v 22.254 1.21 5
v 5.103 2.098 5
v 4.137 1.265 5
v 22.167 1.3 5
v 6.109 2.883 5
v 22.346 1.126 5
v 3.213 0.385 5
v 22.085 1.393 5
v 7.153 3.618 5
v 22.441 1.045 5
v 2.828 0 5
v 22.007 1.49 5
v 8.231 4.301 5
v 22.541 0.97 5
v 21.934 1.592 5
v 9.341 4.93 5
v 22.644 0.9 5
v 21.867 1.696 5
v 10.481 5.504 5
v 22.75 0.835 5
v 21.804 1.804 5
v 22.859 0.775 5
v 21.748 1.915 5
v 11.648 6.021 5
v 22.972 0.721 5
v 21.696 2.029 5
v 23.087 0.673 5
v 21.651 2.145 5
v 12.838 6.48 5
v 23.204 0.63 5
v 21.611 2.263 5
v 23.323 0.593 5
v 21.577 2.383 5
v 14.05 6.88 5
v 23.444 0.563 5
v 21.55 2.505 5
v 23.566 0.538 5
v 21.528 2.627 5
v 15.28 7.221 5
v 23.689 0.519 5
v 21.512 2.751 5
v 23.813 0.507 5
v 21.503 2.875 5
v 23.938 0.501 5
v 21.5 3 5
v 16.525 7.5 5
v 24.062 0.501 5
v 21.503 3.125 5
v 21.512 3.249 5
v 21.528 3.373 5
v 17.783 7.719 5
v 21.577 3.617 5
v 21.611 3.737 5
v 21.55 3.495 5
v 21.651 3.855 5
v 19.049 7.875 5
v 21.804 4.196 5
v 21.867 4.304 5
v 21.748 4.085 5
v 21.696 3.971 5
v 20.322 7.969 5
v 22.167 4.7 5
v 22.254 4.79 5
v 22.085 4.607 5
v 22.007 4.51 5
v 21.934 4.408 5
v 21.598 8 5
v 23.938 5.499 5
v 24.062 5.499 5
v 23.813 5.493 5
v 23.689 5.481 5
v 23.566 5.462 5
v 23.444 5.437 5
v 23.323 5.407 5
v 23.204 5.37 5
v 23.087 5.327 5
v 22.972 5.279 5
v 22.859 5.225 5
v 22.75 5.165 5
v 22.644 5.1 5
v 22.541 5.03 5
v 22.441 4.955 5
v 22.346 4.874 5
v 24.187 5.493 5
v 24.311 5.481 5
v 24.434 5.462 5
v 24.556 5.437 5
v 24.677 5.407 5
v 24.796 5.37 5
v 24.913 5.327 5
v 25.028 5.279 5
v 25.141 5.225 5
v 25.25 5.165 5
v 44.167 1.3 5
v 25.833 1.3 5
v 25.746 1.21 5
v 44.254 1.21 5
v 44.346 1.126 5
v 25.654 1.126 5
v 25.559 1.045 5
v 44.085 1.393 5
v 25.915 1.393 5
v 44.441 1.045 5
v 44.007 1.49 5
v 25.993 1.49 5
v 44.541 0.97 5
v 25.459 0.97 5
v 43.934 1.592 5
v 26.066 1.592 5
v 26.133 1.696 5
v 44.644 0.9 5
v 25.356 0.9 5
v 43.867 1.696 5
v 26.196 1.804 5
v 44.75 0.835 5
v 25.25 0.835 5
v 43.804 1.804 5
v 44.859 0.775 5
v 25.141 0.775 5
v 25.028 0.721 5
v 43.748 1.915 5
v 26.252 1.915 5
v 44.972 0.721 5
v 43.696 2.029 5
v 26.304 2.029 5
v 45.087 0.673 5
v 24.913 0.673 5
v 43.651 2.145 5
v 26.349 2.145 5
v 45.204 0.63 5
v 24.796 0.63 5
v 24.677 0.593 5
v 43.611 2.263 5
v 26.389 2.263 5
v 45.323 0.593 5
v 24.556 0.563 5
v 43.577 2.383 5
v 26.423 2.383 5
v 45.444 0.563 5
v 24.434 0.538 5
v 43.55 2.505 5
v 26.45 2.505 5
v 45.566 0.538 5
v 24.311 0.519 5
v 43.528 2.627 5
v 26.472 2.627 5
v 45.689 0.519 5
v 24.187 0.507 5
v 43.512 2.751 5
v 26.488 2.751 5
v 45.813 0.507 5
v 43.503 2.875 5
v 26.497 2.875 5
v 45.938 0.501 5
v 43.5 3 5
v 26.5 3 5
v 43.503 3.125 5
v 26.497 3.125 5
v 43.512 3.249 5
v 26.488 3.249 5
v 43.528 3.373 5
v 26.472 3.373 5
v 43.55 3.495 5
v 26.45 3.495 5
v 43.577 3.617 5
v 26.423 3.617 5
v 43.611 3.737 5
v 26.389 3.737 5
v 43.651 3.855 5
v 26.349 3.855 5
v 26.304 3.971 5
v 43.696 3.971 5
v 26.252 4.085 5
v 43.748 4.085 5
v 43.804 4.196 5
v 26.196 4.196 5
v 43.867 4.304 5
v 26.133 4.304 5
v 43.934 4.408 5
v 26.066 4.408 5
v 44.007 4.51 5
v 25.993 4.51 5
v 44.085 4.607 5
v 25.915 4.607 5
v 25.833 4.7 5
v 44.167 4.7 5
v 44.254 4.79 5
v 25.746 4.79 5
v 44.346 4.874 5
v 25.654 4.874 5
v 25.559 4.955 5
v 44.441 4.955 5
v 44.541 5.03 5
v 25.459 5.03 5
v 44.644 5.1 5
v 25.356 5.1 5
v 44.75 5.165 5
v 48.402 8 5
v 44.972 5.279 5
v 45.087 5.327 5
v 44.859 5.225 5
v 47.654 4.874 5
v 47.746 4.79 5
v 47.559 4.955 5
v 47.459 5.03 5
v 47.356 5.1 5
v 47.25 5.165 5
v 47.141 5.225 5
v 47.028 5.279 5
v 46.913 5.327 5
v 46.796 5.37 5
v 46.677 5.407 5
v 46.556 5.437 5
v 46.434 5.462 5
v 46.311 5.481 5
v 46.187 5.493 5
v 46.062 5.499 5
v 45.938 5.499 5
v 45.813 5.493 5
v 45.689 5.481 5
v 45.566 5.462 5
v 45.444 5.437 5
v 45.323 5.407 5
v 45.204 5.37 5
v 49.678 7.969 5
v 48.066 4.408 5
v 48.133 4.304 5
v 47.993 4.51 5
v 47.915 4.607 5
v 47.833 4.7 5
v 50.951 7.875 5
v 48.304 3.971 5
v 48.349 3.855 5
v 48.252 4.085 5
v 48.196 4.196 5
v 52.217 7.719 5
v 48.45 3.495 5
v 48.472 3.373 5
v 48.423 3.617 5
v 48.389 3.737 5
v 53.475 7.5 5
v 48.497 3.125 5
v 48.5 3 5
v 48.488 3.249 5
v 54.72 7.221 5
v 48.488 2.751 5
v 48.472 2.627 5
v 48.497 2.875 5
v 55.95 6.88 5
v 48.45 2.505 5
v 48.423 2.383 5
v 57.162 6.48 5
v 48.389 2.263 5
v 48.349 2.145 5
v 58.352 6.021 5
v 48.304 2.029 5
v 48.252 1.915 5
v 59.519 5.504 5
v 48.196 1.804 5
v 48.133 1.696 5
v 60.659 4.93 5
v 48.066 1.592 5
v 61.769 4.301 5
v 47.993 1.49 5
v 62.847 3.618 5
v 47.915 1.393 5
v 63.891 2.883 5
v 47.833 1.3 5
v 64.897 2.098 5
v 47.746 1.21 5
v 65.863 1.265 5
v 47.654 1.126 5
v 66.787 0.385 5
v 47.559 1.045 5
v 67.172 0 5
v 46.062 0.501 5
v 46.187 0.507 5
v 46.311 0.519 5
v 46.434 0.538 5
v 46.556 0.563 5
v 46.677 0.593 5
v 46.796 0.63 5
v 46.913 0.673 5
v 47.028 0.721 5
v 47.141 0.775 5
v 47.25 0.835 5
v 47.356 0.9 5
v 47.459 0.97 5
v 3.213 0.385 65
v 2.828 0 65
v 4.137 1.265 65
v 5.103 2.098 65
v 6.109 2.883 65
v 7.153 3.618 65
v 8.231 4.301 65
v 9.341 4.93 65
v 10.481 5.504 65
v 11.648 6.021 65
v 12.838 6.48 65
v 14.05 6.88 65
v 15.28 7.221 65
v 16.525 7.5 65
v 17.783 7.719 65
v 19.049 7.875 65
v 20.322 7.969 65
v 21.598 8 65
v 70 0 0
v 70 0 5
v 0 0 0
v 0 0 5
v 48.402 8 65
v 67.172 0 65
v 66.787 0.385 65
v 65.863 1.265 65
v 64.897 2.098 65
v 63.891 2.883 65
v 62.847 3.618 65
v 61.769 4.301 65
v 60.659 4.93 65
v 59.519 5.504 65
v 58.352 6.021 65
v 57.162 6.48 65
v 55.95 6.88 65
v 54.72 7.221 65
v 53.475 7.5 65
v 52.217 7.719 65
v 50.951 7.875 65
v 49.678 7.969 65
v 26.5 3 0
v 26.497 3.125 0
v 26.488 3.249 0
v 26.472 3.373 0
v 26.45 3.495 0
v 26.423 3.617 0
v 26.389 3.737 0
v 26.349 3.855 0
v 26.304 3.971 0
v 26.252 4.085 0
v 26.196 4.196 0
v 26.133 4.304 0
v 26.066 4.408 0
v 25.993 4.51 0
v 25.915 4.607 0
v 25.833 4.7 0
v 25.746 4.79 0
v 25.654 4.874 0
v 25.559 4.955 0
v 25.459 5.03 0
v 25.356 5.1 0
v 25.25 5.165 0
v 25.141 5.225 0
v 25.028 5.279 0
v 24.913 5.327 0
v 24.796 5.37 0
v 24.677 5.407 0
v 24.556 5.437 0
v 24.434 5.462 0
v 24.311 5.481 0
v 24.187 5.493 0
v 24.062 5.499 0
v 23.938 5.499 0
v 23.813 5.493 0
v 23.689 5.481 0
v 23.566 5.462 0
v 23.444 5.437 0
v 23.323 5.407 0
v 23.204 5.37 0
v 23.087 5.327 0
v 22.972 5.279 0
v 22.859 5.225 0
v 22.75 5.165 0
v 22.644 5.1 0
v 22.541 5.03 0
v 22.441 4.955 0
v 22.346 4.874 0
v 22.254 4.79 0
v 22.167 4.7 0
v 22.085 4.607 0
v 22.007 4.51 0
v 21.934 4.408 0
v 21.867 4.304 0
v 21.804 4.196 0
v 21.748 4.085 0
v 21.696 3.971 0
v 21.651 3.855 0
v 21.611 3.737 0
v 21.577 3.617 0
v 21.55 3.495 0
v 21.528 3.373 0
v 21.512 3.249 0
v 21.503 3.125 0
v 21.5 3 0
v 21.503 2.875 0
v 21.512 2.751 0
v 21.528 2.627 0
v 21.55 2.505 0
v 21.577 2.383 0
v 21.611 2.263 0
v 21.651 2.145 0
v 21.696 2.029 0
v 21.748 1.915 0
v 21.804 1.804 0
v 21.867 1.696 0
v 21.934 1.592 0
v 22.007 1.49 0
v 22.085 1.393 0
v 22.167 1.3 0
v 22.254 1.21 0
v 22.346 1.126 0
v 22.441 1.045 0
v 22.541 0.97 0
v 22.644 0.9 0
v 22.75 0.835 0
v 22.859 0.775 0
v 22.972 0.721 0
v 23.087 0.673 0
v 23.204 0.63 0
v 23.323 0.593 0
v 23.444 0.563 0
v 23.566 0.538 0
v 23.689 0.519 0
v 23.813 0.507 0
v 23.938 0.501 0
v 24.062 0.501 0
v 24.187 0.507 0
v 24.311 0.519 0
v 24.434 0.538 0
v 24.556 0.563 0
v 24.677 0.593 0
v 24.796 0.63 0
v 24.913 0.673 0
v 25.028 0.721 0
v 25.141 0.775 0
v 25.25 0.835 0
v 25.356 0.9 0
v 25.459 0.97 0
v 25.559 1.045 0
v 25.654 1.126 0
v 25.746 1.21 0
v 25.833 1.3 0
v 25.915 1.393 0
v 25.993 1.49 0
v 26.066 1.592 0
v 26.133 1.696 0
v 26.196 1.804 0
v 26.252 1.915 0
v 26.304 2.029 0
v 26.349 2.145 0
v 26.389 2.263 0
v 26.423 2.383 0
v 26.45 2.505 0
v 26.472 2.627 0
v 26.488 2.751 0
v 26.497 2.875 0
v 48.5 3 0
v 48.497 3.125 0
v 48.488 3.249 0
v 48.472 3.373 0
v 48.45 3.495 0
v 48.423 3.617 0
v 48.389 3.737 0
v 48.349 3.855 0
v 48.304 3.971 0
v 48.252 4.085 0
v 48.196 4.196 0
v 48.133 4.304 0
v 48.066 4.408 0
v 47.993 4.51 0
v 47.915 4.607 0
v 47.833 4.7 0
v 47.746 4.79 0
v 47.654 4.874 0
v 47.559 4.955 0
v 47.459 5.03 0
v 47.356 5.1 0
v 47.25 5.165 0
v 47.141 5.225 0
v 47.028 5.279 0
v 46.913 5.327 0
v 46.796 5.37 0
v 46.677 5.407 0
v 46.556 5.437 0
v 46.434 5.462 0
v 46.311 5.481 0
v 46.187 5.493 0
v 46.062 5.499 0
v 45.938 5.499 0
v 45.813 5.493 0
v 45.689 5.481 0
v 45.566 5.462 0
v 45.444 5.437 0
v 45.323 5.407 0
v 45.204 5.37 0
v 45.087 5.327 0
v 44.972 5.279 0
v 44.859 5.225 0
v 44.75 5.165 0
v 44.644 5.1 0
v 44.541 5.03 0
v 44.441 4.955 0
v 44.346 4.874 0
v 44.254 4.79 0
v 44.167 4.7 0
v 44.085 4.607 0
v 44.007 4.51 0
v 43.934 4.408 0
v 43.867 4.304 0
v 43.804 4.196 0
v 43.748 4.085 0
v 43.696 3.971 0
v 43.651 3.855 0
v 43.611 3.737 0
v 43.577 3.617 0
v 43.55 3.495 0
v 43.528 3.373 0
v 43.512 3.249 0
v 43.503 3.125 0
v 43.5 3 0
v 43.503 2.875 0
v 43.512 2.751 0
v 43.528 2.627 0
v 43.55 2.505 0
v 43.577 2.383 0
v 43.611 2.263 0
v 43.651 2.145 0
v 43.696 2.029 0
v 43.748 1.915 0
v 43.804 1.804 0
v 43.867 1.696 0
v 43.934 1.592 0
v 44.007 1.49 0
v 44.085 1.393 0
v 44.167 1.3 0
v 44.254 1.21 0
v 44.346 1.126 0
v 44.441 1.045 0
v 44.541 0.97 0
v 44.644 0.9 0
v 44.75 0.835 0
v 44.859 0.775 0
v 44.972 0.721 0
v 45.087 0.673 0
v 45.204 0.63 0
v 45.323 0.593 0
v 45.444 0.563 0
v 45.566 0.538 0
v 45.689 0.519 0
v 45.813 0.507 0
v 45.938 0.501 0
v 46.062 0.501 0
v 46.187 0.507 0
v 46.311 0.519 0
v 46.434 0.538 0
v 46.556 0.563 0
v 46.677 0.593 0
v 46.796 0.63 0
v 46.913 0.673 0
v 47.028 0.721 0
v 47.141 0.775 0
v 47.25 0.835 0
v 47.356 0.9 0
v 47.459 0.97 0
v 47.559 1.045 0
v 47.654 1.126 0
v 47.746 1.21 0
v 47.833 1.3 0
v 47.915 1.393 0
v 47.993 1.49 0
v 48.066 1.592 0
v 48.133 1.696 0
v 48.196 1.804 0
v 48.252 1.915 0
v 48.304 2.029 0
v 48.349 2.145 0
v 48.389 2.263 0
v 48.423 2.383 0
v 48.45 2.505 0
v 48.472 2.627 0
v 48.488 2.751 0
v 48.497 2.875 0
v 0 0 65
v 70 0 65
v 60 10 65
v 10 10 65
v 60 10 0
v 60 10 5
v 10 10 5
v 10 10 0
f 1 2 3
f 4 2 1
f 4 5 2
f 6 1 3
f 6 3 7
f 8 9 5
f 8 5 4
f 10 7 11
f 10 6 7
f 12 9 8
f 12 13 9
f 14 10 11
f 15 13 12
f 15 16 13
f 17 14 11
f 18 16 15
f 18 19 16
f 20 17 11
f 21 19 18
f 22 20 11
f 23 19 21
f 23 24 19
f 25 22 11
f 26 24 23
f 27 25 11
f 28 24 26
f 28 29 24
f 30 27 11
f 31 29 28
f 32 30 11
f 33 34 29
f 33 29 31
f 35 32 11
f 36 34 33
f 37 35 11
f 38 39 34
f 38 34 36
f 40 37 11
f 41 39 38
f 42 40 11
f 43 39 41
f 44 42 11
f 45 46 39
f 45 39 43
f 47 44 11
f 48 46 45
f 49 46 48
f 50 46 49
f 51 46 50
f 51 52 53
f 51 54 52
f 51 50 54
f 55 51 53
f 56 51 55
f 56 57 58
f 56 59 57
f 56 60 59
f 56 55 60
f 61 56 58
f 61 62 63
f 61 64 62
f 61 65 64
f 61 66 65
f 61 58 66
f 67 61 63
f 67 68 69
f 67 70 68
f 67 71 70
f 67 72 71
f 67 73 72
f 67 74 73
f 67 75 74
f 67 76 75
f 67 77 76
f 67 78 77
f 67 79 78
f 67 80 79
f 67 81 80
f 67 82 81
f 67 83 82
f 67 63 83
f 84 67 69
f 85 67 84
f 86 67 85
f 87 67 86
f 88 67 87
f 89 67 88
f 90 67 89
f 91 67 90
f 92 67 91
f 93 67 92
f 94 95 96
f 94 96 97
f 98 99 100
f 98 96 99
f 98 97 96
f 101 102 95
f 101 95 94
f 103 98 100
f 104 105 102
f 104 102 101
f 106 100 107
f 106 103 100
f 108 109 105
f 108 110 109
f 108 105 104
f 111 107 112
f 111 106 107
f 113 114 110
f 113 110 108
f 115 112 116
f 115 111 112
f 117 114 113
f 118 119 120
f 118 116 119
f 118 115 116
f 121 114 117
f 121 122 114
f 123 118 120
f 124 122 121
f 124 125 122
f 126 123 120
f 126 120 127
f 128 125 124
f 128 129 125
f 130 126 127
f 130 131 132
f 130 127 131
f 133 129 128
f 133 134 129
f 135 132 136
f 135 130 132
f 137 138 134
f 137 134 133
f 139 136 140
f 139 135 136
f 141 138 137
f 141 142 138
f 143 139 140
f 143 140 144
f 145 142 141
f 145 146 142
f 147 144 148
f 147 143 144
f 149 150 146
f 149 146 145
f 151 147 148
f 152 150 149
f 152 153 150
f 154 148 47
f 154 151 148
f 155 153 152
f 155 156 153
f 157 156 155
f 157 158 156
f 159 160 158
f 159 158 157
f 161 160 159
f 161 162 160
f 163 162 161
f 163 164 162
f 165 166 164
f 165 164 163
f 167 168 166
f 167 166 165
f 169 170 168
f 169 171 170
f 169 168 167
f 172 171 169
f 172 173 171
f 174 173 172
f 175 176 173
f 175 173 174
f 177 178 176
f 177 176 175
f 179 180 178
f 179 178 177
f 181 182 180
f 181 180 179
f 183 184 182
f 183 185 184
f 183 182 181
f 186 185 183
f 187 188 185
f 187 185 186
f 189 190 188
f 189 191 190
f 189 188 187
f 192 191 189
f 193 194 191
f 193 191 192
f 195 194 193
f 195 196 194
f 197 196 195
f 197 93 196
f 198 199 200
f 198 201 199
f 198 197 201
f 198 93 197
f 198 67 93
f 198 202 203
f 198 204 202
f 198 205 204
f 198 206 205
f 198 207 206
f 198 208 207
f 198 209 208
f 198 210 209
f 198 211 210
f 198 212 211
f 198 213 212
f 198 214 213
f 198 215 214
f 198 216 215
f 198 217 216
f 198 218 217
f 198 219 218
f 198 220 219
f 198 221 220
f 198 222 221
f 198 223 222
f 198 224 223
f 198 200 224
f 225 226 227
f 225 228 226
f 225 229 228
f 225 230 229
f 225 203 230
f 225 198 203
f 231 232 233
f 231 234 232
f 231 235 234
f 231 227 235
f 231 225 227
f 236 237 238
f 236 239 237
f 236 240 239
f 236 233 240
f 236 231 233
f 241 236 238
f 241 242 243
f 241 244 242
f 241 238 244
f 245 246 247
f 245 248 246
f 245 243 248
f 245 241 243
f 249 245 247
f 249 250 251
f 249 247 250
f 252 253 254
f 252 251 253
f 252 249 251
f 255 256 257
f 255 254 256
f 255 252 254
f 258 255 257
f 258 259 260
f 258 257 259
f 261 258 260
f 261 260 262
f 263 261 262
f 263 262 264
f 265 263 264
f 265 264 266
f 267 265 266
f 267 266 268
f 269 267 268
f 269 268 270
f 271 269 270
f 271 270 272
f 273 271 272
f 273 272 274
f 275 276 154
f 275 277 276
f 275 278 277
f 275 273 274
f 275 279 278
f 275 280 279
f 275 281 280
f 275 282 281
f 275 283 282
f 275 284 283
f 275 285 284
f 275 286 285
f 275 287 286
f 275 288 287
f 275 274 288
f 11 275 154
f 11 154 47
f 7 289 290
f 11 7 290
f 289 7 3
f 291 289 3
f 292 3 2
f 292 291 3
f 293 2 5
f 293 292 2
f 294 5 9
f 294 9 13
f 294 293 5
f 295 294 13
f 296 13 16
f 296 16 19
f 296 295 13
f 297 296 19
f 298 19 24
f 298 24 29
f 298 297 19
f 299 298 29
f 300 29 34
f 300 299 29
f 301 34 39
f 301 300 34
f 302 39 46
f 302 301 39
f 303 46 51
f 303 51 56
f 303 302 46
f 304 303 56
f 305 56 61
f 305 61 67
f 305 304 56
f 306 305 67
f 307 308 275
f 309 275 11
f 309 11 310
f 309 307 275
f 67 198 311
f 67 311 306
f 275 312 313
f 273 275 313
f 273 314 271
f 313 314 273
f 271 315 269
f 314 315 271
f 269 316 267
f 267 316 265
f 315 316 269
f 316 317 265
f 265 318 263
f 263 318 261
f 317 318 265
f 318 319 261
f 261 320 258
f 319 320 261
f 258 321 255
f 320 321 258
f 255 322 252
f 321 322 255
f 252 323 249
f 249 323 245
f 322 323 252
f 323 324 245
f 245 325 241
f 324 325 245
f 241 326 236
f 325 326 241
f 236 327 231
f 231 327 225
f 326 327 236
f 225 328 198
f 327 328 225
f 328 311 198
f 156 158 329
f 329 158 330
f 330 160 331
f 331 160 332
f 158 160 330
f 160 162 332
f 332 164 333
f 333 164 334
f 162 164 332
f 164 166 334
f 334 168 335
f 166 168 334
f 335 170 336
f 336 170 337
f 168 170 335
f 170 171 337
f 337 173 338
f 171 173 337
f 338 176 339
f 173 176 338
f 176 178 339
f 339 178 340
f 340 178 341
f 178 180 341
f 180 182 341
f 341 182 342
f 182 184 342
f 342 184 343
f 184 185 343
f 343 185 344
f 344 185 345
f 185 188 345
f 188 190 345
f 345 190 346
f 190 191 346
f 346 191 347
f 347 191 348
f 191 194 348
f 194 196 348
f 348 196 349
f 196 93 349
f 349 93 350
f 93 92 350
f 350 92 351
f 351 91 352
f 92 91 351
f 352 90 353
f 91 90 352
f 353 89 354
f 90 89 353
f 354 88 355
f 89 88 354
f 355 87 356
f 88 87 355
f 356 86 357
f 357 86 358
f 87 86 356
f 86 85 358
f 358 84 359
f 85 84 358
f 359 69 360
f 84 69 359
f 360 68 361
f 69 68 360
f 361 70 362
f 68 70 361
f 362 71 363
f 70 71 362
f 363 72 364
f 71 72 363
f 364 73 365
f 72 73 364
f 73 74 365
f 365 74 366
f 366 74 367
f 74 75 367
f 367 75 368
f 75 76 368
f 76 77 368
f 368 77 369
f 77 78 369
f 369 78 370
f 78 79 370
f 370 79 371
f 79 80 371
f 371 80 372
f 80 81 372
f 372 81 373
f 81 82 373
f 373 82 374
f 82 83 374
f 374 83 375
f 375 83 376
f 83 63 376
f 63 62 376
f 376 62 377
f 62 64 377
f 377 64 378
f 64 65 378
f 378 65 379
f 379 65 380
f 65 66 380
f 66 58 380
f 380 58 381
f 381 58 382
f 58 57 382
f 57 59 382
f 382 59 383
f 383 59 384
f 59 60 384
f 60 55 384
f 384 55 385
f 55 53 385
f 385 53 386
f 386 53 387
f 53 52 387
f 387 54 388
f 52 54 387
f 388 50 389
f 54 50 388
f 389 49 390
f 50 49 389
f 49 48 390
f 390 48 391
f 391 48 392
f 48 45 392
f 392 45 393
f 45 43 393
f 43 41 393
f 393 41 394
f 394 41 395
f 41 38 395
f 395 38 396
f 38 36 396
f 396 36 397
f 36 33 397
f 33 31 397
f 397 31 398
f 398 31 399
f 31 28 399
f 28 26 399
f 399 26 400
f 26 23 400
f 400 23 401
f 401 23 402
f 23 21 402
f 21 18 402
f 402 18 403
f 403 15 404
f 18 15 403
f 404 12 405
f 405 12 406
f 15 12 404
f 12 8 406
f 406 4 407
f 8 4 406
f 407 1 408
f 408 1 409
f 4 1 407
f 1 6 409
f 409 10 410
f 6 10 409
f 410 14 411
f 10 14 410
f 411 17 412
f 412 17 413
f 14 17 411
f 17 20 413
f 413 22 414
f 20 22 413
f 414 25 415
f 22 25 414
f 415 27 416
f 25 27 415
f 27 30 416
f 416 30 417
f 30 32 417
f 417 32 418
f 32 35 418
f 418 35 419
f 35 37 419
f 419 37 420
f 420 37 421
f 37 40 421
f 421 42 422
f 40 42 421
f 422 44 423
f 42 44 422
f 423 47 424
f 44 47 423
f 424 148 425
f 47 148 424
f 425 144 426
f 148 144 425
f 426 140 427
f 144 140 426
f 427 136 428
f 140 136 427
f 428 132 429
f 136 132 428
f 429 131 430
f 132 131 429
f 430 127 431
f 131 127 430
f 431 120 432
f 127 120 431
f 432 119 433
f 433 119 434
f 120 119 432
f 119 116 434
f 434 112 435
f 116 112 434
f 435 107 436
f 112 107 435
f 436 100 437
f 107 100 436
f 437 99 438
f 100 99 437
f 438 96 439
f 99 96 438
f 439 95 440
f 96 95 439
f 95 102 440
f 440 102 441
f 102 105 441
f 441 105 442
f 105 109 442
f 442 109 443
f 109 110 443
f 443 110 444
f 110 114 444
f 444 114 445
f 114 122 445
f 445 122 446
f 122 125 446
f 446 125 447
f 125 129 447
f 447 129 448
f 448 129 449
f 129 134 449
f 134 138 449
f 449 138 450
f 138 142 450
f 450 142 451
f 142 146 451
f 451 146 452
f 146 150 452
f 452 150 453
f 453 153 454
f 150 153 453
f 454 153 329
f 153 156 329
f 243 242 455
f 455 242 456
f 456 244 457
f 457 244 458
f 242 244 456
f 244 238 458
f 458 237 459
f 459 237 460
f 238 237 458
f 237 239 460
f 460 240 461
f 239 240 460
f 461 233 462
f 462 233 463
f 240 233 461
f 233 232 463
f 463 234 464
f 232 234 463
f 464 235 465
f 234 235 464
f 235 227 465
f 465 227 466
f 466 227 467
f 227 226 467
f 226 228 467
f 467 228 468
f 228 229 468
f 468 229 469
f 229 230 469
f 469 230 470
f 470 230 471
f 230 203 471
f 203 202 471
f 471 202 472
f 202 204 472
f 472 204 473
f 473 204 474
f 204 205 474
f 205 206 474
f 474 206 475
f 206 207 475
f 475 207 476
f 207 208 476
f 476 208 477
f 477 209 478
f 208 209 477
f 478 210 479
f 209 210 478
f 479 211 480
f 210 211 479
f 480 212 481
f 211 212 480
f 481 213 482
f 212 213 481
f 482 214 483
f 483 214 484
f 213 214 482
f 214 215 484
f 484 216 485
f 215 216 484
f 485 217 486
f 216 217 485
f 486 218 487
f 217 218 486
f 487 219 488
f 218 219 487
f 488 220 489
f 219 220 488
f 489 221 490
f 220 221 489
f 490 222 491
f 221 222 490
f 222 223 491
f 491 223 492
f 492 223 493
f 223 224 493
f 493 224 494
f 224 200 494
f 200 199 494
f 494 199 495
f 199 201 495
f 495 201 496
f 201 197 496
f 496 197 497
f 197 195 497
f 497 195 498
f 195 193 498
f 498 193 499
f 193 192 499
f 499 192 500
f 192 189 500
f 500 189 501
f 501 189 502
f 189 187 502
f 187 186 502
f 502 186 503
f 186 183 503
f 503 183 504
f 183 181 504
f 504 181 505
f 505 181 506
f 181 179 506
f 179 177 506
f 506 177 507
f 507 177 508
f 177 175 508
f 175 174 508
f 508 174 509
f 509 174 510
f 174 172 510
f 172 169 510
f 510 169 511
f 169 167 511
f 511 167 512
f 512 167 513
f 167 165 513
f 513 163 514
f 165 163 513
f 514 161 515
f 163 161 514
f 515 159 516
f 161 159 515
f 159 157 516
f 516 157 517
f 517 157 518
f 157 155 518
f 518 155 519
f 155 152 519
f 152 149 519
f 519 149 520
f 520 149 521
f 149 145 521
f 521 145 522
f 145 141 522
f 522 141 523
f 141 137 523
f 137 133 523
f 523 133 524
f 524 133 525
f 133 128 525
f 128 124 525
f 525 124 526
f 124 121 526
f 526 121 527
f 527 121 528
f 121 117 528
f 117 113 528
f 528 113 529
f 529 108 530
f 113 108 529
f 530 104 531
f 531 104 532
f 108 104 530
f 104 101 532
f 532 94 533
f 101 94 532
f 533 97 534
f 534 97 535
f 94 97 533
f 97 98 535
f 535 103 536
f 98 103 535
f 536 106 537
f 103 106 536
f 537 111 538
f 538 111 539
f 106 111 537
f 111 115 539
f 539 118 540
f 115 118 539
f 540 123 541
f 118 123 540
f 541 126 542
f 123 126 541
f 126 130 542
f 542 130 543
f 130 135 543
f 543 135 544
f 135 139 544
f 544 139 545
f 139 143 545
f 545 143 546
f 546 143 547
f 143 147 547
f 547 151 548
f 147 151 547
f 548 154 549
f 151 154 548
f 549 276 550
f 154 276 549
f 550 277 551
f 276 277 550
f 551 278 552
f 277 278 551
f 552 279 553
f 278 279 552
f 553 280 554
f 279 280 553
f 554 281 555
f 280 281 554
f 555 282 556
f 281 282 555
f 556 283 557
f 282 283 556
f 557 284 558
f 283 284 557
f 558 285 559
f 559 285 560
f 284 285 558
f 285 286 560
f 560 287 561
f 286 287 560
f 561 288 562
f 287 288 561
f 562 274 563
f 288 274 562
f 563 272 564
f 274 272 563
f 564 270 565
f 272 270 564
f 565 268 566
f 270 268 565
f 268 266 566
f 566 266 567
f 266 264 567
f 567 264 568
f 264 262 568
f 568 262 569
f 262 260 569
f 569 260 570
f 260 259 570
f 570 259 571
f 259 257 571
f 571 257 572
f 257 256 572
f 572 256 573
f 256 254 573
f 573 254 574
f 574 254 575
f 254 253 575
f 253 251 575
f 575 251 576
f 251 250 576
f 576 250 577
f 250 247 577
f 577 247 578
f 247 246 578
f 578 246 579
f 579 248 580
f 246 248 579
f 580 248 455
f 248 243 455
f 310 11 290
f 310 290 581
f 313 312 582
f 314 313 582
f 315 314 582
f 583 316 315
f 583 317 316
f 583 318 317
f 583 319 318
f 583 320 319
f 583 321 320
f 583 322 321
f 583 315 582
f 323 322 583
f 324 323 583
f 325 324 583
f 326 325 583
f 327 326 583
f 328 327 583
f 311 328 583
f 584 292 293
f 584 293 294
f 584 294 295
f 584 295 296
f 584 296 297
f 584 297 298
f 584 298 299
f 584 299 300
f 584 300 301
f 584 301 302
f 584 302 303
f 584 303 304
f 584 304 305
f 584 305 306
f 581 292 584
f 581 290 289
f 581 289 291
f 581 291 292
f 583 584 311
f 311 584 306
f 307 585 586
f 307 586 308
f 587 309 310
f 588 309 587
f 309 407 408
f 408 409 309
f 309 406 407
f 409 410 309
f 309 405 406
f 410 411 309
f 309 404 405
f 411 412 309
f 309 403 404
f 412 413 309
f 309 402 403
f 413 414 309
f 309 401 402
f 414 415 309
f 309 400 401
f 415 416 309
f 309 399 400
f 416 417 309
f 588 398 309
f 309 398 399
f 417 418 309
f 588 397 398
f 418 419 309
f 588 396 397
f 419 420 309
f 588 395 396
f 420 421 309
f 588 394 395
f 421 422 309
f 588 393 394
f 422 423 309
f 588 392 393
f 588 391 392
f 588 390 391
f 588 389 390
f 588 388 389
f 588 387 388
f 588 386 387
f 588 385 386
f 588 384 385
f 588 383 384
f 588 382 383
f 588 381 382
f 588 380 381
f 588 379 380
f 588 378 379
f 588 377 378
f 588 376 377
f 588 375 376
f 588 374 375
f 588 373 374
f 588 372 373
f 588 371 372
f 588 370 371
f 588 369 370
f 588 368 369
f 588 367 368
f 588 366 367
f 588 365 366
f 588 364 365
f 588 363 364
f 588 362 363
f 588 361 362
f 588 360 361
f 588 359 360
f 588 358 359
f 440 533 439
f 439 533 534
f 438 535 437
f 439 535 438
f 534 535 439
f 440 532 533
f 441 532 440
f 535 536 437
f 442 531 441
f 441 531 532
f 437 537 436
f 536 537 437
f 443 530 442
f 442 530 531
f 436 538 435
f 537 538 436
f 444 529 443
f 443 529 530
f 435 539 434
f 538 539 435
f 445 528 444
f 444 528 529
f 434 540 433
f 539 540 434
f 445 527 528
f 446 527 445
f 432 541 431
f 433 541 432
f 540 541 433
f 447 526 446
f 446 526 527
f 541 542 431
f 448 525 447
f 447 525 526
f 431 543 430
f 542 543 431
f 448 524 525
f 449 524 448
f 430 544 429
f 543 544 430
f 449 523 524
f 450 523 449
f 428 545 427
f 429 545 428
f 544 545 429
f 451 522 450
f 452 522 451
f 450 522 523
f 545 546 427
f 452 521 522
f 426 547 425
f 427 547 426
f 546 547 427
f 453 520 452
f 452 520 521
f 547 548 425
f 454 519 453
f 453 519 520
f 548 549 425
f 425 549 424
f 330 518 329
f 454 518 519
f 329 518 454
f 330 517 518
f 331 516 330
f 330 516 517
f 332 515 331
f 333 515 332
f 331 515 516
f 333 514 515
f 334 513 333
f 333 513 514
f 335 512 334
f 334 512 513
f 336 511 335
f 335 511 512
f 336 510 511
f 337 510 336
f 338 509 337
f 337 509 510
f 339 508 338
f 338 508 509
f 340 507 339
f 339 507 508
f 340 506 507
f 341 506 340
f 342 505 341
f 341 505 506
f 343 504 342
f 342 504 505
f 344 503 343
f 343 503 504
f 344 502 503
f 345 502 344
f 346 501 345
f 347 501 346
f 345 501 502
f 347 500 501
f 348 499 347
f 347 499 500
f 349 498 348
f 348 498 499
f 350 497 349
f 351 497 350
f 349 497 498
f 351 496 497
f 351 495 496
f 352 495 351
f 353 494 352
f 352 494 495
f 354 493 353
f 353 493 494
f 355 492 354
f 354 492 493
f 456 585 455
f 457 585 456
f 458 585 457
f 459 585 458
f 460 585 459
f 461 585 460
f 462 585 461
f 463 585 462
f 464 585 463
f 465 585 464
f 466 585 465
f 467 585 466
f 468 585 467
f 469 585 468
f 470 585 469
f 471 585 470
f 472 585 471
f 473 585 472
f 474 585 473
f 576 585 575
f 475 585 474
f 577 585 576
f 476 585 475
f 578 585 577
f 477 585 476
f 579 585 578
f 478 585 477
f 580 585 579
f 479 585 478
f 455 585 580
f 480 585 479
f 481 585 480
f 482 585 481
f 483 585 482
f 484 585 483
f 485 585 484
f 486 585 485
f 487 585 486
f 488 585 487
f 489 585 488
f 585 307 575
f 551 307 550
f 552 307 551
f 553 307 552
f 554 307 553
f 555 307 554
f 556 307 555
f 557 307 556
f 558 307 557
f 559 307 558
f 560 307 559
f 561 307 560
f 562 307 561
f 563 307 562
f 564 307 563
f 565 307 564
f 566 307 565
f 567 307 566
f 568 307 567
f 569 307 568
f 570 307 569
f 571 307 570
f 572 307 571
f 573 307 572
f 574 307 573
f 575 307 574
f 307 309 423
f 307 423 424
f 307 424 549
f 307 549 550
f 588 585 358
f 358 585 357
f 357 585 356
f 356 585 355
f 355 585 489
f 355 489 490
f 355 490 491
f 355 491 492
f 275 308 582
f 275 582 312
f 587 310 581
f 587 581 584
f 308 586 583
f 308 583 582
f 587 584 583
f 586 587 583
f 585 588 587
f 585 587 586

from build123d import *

# Parameters (mm, degrees)
PAD_DEPTH    = 5
PAD001_DEPTH = 60
FILLET_R     = 26
SKETCH002_R  = 2.5
POCKET_DEPTH = 5


with BuildPart() as part:
    # Sketch → Pad (new body)
    with BuildSketch(Plane.XY):
        Polygon((0, 0), (10, 10), (60, 10), (70, 0), align=None)
    extrude(amount=PAD_DEPTH)

    # Sketch001 (on Face6 of Pad) → Pad001 (join)
    with BuildSketch(Plane.XY.offset(5)):
        Polygon((0, 0), (10, 10), (60, 10), (70, 0), (67.172, 0), (59.172, 8), (10.828, 8), (2.828, 0), align=None)
    extrude(amount=PAD001_DEPTH)

    # Fillet
    fillet_edges = [part.edges().sort_by_distance(p)[0] for p in [
        (59.172, 8, 35),
        (10.828, 8, 35),
    ]]
    fillet(fillet_edges, radius=FILLET_R)

    # Sketch002 (on Face1 of Fillet) → Pocket (cut)
    with BuildSketch(Plane.XY.offset(5)):
        with Locations((24, 3)):
            Circle(SKETCH002_R)
        with Locations((46, 3)):
            Circle(SKETCH002_R)
    extrude(amount=-POCKET_DEPTH, mode=Mode.SUBTRACT)


solid = part.part
